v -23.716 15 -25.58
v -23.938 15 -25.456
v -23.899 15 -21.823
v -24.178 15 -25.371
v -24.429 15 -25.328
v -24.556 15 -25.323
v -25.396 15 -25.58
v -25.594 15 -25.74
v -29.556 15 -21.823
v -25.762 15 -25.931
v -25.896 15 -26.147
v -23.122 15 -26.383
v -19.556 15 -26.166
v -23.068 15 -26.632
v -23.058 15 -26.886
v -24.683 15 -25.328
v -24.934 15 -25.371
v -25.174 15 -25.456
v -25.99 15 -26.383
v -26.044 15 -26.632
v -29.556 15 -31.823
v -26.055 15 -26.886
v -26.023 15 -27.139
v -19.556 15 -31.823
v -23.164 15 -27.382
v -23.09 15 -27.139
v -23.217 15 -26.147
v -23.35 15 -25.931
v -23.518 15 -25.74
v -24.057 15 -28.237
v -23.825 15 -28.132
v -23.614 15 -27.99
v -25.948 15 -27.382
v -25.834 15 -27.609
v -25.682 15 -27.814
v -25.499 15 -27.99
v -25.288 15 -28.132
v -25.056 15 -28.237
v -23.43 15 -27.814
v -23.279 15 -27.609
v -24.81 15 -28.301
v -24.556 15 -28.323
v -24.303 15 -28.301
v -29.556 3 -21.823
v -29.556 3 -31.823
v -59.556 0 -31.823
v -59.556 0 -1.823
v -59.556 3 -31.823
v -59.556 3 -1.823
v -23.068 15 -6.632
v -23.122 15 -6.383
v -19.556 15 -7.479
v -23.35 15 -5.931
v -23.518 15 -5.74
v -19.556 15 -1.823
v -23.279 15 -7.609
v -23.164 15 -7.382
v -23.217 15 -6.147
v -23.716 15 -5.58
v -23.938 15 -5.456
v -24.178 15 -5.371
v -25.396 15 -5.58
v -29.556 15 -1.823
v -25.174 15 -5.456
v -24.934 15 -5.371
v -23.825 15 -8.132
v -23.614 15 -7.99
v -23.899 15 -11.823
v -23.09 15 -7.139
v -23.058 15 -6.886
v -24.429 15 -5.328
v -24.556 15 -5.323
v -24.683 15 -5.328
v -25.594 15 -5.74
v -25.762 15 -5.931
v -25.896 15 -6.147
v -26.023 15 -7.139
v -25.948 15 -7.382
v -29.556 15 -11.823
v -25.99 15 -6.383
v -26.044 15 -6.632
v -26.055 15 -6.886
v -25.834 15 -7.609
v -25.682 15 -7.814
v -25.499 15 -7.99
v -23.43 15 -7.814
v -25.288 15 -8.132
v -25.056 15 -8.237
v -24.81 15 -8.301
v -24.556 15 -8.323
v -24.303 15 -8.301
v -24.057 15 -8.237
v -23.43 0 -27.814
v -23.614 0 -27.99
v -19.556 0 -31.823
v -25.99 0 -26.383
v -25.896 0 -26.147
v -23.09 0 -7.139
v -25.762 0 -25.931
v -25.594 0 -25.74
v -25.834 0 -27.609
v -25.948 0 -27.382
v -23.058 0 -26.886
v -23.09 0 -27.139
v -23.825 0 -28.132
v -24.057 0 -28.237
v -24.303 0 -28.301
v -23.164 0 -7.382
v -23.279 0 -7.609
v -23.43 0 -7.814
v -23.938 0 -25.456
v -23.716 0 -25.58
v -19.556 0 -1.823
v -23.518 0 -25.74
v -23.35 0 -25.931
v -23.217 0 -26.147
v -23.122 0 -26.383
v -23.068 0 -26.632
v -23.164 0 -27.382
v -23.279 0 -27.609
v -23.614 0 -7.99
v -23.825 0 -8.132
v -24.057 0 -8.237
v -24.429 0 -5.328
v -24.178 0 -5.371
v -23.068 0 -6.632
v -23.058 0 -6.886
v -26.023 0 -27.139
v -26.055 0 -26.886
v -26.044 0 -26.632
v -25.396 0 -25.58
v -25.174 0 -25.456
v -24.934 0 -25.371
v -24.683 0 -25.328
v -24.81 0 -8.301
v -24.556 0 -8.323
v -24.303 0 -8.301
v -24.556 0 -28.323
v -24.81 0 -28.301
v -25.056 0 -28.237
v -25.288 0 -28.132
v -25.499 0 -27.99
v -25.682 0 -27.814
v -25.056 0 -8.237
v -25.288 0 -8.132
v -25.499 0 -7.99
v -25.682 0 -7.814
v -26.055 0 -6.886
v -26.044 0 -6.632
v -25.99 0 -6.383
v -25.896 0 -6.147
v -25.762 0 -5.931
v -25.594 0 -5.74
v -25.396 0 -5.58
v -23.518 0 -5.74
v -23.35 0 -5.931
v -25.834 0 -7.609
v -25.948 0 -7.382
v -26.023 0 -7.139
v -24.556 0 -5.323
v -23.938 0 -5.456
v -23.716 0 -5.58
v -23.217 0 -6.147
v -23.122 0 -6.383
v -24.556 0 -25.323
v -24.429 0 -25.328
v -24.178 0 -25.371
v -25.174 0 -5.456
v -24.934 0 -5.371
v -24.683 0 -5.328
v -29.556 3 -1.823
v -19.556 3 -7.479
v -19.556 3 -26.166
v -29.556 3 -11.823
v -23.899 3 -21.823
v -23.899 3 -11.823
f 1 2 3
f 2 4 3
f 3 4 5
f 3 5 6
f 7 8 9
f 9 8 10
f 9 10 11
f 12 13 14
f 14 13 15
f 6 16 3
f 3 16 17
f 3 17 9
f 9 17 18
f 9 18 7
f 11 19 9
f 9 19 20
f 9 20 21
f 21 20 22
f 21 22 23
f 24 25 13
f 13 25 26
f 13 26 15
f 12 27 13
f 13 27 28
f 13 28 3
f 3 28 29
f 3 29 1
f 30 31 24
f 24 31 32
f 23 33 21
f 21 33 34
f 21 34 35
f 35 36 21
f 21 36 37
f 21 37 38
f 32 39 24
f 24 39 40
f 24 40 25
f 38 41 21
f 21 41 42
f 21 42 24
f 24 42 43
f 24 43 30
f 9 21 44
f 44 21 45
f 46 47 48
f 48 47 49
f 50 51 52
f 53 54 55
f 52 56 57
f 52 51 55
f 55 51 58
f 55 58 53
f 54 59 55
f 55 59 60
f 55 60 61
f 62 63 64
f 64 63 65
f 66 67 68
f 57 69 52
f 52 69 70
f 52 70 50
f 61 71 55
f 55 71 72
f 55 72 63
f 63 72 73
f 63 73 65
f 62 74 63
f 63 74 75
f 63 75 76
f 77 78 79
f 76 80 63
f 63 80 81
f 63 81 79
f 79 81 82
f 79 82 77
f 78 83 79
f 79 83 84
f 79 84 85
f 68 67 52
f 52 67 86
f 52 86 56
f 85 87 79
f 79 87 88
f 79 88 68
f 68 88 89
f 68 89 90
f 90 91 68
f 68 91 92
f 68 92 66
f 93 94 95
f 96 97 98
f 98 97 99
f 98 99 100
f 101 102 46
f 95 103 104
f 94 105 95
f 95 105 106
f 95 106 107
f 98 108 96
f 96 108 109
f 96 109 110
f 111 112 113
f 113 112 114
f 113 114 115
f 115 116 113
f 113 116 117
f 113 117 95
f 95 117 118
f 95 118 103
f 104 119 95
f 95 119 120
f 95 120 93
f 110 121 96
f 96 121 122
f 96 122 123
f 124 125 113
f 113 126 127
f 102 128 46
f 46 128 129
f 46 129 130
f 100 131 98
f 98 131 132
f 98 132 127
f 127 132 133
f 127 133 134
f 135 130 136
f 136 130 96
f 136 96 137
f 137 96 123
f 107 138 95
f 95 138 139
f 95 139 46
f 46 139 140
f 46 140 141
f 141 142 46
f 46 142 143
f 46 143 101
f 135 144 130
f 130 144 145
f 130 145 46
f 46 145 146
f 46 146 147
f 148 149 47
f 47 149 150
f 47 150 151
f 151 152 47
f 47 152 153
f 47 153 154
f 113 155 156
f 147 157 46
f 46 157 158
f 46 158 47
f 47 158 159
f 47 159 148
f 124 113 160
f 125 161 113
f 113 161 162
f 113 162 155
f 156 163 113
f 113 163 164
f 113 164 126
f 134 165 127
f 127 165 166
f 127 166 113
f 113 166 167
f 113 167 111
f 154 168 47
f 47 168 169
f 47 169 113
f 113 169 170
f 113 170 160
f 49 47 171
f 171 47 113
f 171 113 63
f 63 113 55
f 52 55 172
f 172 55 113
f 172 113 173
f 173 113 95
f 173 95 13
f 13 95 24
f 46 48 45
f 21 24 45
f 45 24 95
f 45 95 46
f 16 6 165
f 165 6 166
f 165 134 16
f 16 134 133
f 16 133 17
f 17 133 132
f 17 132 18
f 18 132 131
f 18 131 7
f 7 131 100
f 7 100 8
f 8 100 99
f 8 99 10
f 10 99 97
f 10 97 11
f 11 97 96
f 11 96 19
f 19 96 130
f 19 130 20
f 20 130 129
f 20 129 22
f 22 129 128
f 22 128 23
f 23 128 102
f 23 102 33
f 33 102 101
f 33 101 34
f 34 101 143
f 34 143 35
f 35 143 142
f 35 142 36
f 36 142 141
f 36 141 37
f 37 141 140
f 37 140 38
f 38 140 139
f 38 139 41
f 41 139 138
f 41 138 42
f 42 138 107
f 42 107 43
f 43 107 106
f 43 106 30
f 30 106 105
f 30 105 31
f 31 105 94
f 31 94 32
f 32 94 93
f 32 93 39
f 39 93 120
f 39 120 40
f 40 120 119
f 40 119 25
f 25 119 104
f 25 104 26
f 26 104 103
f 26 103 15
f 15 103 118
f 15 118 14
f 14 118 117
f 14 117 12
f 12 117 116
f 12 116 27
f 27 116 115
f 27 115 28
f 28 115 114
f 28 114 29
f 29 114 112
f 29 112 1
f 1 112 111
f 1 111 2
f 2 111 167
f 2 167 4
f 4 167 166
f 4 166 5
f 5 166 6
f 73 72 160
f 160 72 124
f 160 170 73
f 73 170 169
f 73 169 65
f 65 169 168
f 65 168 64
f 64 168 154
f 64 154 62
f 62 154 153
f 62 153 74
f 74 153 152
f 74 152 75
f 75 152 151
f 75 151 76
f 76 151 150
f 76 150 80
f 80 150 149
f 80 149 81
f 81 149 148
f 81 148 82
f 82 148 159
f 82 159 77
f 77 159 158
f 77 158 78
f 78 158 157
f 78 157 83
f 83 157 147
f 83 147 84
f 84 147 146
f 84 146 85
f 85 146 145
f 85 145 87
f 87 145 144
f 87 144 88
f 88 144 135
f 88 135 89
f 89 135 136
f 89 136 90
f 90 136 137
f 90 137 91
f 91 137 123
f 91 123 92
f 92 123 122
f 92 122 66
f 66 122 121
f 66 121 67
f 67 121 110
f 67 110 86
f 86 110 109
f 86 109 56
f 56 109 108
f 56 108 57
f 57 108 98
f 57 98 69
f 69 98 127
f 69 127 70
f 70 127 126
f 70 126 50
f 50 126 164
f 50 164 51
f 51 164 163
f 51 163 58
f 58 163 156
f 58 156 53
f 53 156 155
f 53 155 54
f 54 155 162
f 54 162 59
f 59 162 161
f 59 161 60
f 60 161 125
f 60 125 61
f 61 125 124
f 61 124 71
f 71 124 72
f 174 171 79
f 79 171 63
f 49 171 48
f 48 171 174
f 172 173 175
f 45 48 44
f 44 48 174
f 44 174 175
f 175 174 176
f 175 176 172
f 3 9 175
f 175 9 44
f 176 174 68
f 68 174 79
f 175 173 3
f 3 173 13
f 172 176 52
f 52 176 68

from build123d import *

# Parameters (mm, degrees)
SKETCH1_W           = 40
SKETCH1_H           = 30
SKETCH1_R           = 1.5
BOSS_EXTRUDE1_DEPTH = 15
SKETCH2_W           = 30
SKETCH2_H           = 30
CUT_EXTRUDE1_DEPTH  = 12
SKETCH3_W           = 10
SKETCH3_H           = 10
CUT_EXTRUDE2_DEPTH  = 12
CUT_EXTRUDE3_DEPTH  = 12


with BuildPart() as part:
    # Sketch1 → Boss-Extrude1 (new body)
    with BuildSketch(Plane(origin=(0, 0, 0), x_dir=(1, 0, 0), z_dir=(0, 1, 0))):
        with Locations((-39.556208855, 16.822571299)):
            Rectangle(SKETCH1_W, SKETCH1_H)
        with Locations(Location((-24.556208855, 26.822571299, 0), (0, 0, 270))):
            Circle(SKETCH1_R, mode=Mode.SUBTRACT)
        with Locations(Location((-24.556208855, 6.822571299, 0), (0, 0, 270))):
            Circle(SKETCH1_R, mode=Mode.SUBTRACT)
    extrude(amount=BOSS_EXTRUDE1_DEPTH)

    # Sketch2 → Cut-Extrude1 (cut)
    with BuildSketch(Plane(origin=(0, 15, 0), x_dir=(1, 0, 0), z_dir=(0, 1, 0))):
        with Locations((-44.556208855, 16.822571299)):
            Rectangle(SKETCH2_W, SKETCH2_H)
    extrude(amount=-CUT_EXTRUDE1_DEPTH, mode=Mode.SUBTRACT)

    # Sketch3 → Cut-Extrude2 (cut)
    with BuildSketch(Plane(origin=(0, 15, 0), x_dir=(1, 0, 0), z_dir=(0, 1, 0))):
        with Locations((-24.556208855, 16.822571299)):
            Rectangle(SKETCH3_W, SKETCH3_H)
    extrude(amount=-CUT_EXTRUDE2_DEPTH, mode=Mode.SUBTRACT)

    # Sketch4 → Cut-Extrude3 (cut)
    with BuildSketch(Plane(origin=(0, 15, 0), x_dir=(1, 0, 0), z_dir=(0, 1, 0))):
        Polygon((-23.899354605, 21.822571299), (-19.556208855, 26.165717049), (-19.556208855, 21.822571299), align=None)
        Polygon((-23.899354605, 11.822571299), (-19.556208855, 7.479425548), (-19.556208855, 11.822571299), align=None)
    extrude(amount=-CUT_EXTRUDE3_DEPTH, mode=Mode.SUBTRACT)


solid = part.part
